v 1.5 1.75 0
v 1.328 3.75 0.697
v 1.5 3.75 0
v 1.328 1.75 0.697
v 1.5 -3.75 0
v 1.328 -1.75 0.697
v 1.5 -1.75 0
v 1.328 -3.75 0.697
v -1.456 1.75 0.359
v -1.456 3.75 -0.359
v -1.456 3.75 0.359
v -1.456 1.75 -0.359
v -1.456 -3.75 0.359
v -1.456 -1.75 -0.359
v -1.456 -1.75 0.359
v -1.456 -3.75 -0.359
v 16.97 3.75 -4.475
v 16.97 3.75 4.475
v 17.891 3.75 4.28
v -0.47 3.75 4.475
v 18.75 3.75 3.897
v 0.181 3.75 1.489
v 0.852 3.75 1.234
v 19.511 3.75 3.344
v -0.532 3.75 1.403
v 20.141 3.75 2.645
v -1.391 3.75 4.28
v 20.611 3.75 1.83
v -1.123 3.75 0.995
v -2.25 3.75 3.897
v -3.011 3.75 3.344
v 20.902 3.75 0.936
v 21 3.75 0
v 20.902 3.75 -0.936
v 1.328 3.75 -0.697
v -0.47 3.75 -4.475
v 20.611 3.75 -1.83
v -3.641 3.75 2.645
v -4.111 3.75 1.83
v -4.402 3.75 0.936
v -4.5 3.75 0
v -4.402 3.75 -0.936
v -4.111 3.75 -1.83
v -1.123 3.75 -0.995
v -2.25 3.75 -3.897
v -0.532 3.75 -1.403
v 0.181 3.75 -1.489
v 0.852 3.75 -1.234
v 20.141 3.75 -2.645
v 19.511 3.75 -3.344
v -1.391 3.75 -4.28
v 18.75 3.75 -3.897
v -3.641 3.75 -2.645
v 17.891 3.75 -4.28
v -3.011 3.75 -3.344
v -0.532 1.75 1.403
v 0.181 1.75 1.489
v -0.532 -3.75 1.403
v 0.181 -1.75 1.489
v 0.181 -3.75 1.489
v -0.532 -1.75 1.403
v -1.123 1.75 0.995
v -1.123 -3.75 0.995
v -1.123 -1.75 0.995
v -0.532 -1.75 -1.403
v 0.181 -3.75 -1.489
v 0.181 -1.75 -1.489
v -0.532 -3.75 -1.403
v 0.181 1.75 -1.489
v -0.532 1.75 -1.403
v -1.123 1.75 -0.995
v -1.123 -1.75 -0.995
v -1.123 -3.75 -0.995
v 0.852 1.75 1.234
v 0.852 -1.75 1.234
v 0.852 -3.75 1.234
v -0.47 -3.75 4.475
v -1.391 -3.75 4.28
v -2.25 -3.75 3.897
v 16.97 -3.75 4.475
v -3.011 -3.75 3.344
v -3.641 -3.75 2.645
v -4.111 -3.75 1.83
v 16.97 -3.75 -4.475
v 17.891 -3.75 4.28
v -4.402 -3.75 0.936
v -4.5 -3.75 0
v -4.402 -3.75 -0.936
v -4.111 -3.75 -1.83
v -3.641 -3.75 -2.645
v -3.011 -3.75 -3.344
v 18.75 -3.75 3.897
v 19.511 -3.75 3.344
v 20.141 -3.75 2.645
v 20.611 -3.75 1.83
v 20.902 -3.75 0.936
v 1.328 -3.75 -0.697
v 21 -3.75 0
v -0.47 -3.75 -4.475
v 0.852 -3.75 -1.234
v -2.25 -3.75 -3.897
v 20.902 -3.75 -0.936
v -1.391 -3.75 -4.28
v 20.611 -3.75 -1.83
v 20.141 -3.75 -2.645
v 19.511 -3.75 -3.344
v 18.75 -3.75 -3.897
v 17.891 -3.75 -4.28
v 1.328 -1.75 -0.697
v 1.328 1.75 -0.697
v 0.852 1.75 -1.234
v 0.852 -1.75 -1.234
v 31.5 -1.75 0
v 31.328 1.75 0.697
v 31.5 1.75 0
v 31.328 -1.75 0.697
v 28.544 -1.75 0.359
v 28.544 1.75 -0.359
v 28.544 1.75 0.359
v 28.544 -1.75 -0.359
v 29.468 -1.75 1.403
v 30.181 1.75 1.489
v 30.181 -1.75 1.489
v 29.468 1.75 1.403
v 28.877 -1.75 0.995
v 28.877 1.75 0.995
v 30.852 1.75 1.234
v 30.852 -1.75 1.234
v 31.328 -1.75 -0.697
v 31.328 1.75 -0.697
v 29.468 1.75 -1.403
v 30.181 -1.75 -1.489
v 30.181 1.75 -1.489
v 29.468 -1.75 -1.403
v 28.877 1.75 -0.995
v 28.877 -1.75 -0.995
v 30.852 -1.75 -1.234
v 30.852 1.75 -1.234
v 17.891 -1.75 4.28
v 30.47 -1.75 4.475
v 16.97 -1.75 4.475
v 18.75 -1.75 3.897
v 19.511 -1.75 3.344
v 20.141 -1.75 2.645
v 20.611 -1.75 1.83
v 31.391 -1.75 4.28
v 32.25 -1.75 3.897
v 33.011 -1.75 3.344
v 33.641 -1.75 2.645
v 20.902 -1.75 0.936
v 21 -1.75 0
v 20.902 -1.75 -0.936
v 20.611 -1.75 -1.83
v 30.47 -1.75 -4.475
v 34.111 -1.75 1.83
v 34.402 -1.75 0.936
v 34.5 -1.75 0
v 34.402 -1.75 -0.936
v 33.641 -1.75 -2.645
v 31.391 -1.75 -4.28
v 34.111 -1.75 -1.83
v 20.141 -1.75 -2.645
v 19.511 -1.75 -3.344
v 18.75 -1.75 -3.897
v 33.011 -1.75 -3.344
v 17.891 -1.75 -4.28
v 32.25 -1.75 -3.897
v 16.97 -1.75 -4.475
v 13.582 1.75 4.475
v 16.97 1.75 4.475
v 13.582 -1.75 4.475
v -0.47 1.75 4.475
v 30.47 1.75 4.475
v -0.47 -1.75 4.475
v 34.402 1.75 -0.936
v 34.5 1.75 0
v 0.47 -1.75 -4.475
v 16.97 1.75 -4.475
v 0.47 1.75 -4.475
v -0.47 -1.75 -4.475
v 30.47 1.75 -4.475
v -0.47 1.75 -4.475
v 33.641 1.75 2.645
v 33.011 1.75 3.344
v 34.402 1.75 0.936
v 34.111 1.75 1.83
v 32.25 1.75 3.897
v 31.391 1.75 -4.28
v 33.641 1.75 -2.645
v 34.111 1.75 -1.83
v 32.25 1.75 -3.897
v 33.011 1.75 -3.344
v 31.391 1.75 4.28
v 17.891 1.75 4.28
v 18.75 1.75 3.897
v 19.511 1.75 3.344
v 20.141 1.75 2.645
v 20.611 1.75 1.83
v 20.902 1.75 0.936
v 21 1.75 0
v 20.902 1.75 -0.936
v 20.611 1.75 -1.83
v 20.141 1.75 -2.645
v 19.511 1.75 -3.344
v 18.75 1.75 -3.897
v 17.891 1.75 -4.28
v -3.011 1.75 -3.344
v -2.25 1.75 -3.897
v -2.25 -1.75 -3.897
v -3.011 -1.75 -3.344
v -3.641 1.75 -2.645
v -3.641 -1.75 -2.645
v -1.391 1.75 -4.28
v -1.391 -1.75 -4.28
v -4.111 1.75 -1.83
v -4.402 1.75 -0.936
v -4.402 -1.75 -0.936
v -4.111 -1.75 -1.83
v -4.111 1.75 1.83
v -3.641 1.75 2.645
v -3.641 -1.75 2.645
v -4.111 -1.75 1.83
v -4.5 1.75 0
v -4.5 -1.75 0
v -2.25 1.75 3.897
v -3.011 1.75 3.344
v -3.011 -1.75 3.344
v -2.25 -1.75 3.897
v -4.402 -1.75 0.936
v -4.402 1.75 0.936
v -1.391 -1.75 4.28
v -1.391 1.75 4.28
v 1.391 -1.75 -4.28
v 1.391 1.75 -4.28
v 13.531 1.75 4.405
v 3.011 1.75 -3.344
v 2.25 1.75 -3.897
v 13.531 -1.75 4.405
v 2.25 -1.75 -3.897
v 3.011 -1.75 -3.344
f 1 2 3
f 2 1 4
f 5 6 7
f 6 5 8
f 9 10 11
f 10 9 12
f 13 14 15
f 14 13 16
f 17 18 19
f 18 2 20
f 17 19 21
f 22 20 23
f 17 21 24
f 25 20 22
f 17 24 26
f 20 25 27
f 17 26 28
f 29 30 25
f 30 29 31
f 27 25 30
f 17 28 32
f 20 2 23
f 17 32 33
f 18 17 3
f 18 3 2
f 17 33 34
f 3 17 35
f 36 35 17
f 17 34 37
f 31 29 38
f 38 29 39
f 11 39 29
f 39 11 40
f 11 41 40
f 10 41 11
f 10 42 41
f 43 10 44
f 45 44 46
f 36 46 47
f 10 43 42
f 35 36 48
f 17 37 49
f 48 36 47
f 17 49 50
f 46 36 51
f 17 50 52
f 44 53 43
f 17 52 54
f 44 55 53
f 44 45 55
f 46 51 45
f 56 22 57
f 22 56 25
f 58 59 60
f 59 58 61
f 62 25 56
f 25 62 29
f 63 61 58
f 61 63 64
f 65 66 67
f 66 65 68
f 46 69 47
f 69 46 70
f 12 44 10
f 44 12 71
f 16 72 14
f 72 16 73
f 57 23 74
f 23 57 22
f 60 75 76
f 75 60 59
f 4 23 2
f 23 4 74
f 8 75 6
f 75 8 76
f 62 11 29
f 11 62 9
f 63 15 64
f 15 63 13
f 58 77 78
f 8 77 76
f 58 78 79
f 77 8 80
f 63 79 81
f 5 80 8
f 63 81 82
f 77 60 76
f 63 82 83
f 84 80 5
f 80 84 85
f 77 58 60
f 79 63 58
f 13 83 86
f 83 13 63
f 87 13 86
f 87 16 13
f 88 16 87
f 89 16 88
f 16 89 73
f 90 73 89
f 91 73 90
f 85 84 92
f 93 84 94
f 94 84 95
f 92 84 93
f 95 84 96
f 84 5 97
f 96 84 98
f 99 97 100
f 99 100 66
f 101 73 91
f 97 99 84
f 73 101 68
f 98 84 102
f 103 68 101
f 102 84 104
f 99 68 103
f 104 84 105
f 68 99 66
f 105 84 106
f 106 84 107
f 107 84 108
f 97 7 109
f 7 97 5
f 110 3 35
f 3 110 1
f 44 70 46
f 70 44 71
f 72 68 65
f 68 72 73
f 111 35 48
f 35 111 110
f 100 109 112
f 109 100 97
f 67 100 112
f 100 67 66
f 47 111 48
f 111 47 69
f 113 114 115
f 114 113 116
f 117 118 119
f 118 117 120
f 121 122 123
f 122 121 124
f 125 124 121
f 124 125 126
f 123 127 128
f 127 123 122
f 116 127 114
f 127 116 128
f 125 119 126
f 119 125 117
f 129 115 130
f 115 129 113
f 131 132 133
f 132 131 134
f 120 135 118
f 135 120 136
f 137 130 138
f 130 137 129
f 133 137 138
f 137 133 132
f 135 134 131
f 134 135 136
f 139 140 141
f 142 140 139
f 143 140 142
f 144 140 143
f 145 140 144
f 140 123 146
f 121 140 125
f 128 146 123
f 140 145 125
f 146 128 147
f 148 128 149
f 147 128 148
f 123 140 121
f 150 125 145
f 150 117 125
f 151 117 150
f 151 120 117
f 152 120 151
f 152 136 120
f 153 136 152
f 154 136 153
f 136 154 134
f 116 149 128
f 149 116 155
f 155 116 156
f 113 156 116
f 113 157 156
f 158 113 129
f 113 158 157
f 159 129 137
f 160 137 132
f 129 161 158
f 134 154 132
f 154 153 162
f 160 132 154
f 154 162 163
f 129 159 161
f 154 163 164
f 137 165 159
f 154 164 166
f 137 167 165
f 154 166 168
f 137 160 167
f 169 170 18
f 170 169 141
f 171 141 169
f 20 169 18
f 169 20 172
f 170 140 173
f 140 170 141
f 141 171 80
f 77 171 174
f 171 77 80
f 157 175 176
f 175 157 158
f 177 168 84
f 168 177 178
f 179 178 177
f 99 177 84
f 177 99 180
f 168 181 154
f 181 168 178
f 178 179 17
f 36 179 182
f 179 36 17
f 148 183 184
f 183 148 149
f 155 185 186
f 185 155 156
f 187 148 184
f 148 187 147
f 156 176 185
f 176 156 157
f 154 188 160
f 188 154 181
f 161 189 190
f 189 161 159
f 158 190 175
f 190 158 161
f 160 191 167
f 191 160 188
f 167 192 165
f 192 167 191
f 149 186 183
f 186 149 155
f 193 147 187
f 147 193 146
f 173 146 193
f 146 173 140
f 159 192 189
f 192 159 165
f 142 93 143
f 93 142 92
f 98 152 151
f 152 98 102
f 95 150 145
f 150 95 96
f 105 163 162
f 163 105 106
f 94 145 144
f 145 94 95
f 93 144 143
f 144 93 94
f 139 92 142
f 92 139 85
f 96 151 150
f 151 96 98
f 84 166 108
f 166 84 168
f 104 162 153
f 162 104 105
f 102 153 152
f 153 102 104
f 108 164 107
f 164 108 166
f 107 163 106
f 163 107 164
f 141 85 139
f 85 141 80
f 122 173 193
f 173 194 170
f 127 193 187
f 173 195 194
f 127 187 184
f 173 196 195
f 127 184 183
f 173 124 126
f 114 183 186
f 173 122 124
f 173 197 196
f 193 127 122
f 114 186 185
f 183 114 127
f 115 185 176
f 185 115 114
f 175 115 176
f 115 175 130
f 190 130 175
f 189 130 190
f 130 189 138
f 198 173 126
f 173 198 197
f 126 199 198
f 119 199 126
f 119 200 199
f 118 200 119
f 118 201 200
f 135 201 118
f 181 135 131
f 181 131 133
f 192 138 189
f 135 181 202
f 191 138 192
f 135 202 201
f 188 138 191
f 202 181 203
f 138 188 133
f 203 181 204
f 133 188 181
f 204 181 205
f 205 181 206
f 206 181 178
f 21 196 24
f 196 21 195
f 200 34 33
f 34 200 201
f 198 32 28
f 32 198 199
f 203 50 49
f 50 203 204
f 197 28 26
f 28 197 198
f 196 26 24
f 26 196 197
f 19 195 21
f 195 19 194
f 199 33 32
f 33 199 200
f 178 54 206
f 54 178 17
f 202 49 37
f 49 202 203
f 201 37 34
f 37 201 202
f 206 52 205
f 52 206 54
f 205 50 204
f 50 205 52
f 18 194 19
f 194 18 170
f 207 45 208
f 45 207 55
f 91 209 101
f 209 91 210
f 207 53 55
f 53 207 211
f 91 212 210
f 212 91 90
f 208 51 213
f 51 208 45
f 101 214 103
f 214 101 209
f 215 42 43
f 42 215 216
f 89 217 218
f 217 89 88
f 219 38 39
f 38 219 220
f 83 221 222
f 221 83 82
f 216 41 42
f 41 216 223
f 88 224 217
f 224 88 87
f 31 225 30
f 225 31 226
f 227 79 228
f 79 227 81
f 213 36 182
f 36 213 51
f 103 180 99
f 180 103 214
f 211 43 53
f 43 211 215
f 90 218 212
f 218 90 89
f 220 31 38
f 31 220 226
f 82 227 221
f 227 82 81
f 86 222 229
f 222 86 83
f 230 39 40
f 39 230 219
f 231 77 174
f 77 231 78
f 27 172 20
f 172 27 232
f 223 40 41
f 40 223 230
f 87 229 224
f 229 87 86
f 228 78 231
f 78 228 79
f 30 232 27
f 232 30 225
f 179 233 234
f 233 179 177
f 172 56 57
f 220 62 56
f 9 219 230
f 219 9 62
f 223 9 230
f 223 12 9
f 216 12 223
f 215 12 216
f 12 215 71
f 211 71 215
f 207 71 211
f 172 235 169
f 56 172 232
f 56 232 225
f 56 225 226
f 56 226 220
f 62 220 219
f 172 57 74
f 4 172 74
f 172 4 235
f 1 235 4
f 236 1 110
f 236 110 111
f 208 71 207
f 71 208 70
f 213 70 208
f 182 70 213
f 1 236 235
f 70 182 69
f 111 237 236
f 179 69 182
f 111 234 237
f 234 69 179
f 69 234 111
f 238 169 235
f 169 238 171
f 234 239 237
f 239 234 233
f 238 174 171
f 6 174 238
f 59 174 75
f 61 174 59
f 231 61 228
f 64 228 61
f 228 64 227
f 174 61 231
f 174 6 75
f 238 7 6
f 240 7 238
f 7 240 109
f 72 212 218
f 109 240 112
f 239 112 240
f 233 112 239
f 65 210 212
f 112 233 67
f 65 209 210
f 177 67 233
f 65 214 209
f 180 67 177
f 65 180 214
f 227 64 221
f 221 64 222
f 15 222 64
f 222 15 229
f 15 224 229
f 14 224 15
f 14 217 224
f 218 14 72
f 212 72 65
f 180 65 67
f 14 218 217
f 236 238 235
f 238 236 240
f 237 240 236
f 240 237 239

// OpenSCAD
$fs=.75;

rotate(a = [90, 0, 0]) {
	difference() {
		hull() {
			translate(v = [-0.0000000000, -0.0000000000, -3.7500000000]) {
				cylinder(h = 7.5000000000, r = 4.5000000000);
			}
			translate(v = [30, 0, 0]) {
				translate(v = [-0.0000000000, -0.0000000000, -3.7500000000]) {
					cylinder(h = 7.5000000000, r = 4.5000000000);
				}
			}
		}
		union() {
			translate(v = [0, 0, -3.7500000000]) {
				cylinder(d = 3, h = 7.5000000000);
			}
			translate(v = [30, 0, 0]) {
				translate(v = [0, 0, -3.7500000000]) {
					cylinder(d = 3, h = 7.5000000000);
				}
			}
		}
		hull() {
			translate(v = [-0.0000000000, -0.0000000000, -1.7500000000]) {
				cylinder(h = 3.5000000000, r = 4.5000000000);
			}
			translate(v = [13.5000000000, 4.5000000000, 0]) {
				translate(v = [-0.0000000000, -0.0000000000, -1.7500000000]) {
					cylinder(h = 3.5000000000, r = 0.1000000000);
				}
			}
		}
		translate(v = [0, 0, 2.7500000000]) {
			#difference() {
				hull() {
					translate(v = [30, 0, 0]) {
						translate(v = [-0.0000000000, -0.0000000000, -1.0000000000]) {
							cylinder(h = 2, r = 4.5000000000);
						}
					}
					translate(v = [16.5000000000, 0, 0]) {
						translate(v = [-0.0000000000, -0.0000000000, -1.0000000000]) {
							cylinder(h = 2, r = 4.5000000000);
						}
					}
				}
				translate(v = [16.5000000000, 0, 0]) {
					translate(v = [-0.0000000000, -0.0000000000, -1.0000000000]) {
						cylinder(h = 2, r = 4.5000000000);
					}
				}
			}
		}
		translate(v = [0, 0, -2.7500000000]) {
			#difference() {
				hull() {
					translate(v = [30, 0, 0]) {
						translate(v = [-0.0000000000, -0.0000000000, -1.0000000000]) {
							cylinder(h = 2, r = 4.5000000000);
						}
					}
					translate(v = [16.5000000000, 0, 0]) {
						translate(v = [-0.0000000000, -0.0000000000, -1.0000000000]) {
							cylinder(h = 2, r = 4.5000000000);
						}
					}
				}
				translate(v = [16.5000000000, 0, 0]) {
					translate(v = [-0.0000000000, -0.0000000000, -1.0000000000]) {
						cylinder(h = 2, r = 4.5000000000);
					}
				}
			}
		}
	}
}
/***********************************************
*********      SolidPython code:      **********
************************************************
 
from solid import *
from solid import extensions
from math import *

class Object:
    pass

thkOut = 2
thkIn = 3
thkPlay = .5
thk = 2*thkOut+thkIn+thkPlay
length =30

screwD=3
rLink = screwD/2.+3

screwHoles = cylinder(d=screwD, h=thk).center()+cylinder(d=screwD,h=thk).center().move(x=length)
baseBody = hull(cylinder(r=rLink, h=thk).center(),cylinder(r=rLink,h=thk).center().move(x=length))
hornSpace = hull(cylinder(rLink,h=thkIn+thkPlay).center(), cylinder(0.1,h=thkIn+thkPlay).center().move(x=3*rLink,y=rLink))
def sideSpace() :
	return  ( hull(cylinder(rLink,h=thkOut).center().move(x=length), 
		           cylinder(rLink,h=thkOut).center().move(x=length-3*rLink))
	        - cylinder(rLink,h=thkOut).center().move(x=length-3*rLink)).debug()

scene = ( baseBody 
	    - screwHoles 
	    - hornSpace
	    - sideSpace().move(z=thk/2.-thkOut/2) 
	    - sideSpace().move(z=-thk/2.+thkOut/2)).rot(x=90)

scad_render_to_file(scene, 'preview.scad', '$fs=.75;') 
 
************************************************/
